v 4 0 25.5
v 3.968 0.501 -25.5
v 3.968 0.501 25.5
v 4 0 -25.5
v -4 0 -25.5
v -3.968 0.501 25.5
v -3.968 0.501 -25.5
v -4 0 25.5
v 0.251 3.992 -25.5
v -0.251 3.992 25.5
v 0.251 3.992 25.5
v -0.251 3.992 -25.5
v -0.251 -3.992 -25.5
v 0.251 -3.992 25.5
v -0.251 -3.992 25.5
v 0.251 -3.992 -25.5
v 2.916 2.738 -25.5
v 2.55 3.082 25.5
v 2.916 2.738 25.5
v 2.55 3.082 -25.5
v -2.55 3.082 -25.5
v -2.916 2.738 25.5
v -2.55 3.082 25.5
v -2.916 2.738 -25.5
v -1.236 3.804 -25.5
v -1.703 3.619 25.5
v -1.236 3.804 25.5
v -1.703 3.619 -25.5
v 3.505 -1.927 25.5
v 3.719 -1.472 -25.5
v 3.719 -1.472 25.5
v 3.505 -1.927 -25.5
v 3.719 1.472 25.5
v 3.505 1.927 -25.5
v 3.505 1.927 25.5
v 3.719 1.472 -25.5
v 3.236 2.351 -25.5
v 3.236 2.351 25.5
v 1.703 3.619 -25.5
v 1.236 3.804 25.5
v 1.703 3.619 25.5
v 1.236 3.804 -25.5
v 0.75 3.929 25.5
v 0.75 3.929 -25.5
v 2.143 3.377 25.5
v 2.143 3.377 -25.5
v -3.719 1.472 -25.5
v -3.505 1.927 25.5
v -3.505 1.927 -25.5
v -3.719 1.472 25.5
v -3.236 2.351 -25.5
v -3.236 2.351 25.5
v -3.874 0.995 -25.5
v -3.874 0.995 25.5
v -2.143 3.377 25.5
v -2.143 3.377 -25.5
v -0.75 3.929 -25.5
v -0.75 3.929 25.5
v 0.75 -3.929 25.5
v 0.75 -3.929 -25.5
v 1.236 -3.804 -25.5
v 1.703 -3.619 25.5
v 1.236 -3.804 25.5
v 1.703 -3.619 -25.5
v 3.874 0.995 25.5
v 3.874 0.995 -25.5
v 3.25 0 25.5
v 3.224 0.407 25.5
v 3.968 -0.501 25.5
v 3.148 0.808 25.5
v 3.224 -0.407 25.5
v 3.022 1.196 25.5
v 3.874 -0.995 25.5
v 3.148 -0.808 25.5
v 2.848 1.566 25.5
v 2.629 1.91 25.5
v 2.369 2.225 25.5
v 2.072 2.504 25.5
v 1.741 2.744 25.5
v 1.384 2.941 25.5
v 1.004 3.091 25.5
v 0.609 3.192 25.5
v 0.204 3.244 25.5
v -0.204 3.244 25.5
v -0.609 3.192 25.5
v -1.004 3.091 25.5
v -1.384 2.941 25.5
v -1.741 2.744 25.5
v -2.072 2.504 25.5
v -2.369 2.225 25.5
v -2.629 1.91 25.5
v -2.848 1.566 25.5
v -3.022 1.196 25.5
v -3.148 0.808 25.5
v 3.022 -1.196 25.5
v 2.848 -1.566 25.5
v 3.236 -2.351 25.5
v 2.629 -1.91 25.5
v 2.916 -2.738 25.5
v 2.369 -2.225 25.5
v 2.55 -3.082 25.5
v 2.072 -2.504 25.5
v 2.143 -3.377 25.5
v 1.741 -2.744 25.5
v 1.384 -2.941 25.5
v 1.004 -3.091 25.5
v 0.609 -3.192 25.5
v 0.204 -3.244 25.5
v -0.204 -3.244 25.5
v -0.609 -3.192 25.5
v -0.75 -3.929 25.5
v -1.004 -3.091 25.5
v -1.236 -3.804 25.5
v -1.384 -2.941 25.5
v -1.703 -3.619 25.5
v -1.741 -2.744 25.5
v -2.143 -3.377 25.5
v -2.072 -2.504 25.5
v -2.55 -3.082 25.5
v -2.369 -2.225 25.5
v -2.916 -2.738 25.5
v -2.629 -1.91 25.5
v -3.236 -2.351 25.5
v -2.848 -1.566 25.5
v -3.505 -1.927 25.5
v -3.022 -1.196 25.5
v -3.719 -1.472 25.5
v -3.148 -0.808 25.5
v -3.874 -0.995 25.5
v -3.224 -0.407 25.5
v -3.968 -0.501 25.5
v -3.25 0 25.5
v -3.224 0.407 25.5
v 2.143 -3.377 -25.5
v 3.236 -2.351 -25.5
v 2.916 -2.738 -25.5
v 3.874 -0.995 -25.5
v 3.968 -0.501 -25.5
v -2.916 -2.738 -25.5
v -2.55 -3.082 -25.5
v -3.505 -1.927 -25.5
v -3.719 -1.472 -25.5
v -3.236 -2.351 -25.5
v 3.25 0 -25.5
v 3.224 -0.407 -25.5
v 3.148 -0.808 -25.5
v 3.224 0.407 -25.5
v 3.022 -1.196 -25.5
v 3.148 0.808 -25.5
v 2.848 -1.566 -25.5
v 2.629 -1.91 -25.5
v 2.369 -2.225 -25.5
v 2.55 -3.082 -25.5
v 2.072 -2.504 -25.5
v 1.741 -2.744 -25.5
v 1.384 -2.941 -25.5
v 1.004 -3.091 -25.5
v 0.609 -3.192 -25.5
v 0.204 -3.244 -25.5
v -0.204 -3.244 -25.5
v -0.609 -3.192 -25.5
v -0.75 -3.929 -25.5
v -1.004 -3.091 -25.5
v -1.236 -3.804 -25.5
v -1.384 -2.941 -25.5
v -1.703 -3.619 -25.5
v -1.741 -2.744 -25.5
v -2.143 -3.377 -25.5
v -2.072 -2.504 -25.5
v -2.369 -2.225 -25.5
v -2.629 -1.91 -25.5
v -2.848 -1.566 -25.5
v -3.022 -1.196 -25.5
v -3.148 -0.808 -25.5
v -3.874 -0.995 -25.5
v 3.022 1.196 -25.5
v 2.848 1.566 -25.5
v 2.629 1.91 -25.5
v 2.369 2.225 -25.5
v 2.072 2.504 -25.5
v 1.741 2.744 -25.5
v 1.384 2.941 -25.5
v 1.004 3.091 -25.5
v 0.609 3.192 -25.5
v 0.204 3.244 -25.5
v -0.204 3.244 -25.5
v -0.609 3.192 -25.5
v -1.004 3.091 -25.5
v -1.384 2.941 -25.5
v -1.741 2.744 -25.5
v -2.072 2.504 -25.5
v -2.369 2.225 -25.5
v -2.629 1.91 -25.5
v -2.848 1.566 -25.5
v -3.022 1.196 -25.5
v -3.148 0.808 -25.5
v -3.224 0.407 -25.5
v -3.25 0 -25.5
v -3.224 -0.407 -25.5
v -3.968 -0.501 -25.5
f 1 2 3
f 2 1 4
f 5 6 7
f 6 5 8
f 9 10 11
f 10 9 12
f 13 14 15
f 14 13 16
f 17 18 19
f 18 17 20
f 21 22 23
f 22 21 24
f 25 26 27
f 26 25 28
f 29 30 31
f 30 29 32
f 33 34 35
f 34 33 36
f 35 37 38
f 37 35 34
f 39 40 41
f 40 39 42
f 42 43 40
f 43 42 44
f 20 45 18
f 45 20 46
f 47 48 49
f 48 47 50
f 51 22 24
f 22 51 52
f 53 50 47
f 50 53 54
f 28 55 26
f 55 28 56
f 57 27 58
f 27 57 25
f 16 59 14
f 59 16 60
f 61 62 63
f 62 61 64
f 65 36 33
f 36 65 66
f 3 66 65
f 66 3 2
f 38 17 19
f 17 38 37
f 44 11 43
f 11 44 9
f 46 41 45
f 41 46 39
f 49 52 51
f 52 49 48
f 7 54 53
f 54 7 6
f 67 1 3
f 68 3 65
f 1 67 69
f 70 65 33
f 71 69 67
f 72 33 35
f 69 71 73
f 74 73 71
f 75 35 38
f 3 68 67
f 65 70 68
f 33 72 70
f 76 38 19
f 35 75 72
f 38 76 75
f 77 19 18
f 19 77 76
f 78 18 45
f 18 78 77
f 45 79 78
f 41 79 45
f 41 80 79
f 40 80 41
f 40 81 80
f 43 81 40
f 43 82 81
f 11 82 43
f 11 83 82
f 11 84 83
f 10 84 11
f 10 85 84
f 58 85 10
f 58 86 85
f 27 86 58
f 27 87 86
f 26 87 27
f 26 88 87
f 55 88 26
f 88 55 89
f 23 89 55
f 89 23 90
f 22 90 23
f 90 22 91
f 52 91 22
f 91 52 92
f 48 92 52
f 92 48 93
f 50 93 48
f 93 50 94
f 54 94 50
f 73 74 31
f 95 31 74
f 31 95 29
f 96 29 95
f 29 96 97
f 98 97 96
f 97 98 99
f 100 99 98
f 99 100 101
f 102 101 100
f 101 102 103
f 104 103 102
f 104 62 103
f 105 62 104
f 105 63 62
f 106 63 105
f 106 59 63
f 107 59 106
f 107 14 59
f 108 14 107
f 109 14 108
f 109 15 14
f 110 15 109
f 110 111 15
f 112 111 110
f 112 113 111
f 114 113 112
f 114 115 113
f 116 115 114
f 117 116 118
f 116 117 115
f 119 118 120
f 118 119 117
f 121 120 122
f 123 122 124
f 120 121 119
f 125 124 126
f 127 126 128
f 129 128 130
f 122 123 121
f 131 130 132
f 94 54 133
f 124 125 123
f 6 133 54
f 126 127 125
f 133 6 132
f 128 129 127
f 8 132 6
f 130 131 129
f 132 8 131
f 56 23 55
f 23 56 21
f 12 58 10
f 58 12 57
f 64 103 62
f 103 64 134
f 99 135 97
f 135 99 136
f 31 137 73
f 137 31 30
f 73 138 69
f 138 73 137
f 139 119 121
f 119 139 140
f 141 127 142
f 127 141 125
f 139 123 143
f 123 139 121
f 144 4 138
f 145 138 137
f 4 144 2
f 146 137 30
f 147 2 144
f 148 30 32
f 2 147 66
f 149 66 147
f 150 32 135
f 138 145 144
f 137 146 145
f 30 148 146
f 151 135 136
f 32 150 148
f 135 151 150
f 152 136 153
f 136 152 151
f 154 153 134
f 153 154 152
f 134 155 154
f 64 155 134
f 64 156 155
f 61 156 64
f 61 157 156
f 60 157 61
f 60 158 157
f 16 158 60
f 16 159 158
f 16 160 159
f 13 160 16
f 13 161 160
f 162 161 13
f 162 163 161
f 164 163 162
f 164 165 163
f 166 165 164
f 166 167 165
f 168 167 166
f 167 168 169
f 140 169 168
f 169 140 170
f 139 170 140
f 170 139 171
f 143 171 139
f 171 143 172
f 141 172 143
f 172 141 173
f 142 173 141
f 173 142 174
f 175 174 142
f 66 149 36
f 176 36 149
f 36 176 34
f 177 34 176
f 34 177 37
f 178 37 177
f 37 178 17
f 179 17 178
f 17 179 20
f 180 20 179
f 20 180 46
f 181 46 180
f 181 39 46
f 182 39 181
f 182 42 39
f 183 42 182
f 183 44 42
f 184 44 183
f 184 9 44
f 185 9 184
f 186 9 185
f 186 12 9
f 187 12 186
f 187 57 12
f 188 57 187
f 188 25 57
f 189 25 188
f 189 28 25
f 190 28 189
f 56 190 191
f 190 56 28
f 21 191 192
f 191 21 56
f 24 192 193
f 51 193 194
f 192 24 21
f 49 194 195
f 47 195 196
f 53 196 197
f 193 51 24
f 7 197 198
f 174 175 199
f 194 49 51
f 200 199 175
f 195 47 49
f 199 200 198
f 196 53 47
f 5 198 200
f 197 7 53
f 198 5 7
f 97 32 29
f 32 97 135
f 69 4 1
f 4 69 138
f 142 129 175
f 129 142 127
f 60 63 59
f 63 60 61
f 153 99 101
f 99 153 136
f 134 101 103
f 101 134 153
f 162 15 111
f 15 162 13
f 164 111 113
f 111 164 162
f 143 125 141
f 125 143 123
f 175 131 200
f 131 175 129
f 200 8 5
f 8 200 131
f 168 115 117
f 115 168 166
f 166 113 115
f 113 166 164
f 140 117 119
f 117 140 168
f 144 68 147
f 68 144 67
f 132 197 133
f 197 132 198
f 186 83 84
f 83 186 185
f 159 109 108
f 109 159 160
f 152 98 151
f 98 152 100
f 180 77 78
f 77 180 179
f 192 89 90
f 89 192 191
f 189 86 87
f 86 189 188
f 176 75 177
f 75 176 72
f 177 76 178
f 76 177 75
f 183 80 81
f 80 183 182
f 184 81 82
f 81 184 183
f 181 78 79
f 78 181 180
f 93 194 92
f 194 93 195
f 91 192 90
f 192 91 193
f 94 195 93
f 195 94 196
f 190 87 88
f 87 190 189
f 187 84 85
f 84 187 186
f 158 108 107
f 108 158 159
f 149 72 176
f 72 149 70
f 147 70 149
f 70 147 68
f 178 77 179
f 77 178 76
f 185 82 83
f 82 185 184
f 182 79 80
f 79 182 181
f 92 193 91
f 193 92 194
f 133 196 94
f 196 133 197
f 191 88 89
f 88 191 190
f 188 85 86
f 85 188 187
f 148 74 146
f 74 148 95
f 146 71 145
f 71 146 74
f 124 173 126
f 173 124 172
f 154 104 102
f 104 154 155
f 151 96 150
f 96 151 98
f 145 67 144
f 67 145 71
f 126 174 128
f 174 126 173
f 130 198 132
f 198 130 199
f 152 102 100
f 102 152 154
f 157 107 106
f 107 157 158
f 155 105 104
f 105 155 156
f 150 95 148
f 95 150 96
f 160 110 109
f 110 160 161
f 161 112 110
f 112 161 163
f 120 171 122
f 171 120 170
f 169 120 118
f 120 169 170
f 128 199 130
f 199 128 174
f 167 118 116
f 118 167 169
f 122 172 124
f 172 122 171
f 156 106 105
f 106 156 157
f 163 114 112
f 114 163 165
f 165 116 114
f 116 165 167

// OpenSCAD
$fn = 50;


difference() {
	union() {
		translate(v = [0, 0, -25.5000000000]) {
			cylinder(h = 51, r = 4.0000000000);
		}
	}
	union() {
		translate(v = [0, 0, -100.0000000000]) {
			cylinder(h = 200, r = 3.2500000000);
		}
	}
}
